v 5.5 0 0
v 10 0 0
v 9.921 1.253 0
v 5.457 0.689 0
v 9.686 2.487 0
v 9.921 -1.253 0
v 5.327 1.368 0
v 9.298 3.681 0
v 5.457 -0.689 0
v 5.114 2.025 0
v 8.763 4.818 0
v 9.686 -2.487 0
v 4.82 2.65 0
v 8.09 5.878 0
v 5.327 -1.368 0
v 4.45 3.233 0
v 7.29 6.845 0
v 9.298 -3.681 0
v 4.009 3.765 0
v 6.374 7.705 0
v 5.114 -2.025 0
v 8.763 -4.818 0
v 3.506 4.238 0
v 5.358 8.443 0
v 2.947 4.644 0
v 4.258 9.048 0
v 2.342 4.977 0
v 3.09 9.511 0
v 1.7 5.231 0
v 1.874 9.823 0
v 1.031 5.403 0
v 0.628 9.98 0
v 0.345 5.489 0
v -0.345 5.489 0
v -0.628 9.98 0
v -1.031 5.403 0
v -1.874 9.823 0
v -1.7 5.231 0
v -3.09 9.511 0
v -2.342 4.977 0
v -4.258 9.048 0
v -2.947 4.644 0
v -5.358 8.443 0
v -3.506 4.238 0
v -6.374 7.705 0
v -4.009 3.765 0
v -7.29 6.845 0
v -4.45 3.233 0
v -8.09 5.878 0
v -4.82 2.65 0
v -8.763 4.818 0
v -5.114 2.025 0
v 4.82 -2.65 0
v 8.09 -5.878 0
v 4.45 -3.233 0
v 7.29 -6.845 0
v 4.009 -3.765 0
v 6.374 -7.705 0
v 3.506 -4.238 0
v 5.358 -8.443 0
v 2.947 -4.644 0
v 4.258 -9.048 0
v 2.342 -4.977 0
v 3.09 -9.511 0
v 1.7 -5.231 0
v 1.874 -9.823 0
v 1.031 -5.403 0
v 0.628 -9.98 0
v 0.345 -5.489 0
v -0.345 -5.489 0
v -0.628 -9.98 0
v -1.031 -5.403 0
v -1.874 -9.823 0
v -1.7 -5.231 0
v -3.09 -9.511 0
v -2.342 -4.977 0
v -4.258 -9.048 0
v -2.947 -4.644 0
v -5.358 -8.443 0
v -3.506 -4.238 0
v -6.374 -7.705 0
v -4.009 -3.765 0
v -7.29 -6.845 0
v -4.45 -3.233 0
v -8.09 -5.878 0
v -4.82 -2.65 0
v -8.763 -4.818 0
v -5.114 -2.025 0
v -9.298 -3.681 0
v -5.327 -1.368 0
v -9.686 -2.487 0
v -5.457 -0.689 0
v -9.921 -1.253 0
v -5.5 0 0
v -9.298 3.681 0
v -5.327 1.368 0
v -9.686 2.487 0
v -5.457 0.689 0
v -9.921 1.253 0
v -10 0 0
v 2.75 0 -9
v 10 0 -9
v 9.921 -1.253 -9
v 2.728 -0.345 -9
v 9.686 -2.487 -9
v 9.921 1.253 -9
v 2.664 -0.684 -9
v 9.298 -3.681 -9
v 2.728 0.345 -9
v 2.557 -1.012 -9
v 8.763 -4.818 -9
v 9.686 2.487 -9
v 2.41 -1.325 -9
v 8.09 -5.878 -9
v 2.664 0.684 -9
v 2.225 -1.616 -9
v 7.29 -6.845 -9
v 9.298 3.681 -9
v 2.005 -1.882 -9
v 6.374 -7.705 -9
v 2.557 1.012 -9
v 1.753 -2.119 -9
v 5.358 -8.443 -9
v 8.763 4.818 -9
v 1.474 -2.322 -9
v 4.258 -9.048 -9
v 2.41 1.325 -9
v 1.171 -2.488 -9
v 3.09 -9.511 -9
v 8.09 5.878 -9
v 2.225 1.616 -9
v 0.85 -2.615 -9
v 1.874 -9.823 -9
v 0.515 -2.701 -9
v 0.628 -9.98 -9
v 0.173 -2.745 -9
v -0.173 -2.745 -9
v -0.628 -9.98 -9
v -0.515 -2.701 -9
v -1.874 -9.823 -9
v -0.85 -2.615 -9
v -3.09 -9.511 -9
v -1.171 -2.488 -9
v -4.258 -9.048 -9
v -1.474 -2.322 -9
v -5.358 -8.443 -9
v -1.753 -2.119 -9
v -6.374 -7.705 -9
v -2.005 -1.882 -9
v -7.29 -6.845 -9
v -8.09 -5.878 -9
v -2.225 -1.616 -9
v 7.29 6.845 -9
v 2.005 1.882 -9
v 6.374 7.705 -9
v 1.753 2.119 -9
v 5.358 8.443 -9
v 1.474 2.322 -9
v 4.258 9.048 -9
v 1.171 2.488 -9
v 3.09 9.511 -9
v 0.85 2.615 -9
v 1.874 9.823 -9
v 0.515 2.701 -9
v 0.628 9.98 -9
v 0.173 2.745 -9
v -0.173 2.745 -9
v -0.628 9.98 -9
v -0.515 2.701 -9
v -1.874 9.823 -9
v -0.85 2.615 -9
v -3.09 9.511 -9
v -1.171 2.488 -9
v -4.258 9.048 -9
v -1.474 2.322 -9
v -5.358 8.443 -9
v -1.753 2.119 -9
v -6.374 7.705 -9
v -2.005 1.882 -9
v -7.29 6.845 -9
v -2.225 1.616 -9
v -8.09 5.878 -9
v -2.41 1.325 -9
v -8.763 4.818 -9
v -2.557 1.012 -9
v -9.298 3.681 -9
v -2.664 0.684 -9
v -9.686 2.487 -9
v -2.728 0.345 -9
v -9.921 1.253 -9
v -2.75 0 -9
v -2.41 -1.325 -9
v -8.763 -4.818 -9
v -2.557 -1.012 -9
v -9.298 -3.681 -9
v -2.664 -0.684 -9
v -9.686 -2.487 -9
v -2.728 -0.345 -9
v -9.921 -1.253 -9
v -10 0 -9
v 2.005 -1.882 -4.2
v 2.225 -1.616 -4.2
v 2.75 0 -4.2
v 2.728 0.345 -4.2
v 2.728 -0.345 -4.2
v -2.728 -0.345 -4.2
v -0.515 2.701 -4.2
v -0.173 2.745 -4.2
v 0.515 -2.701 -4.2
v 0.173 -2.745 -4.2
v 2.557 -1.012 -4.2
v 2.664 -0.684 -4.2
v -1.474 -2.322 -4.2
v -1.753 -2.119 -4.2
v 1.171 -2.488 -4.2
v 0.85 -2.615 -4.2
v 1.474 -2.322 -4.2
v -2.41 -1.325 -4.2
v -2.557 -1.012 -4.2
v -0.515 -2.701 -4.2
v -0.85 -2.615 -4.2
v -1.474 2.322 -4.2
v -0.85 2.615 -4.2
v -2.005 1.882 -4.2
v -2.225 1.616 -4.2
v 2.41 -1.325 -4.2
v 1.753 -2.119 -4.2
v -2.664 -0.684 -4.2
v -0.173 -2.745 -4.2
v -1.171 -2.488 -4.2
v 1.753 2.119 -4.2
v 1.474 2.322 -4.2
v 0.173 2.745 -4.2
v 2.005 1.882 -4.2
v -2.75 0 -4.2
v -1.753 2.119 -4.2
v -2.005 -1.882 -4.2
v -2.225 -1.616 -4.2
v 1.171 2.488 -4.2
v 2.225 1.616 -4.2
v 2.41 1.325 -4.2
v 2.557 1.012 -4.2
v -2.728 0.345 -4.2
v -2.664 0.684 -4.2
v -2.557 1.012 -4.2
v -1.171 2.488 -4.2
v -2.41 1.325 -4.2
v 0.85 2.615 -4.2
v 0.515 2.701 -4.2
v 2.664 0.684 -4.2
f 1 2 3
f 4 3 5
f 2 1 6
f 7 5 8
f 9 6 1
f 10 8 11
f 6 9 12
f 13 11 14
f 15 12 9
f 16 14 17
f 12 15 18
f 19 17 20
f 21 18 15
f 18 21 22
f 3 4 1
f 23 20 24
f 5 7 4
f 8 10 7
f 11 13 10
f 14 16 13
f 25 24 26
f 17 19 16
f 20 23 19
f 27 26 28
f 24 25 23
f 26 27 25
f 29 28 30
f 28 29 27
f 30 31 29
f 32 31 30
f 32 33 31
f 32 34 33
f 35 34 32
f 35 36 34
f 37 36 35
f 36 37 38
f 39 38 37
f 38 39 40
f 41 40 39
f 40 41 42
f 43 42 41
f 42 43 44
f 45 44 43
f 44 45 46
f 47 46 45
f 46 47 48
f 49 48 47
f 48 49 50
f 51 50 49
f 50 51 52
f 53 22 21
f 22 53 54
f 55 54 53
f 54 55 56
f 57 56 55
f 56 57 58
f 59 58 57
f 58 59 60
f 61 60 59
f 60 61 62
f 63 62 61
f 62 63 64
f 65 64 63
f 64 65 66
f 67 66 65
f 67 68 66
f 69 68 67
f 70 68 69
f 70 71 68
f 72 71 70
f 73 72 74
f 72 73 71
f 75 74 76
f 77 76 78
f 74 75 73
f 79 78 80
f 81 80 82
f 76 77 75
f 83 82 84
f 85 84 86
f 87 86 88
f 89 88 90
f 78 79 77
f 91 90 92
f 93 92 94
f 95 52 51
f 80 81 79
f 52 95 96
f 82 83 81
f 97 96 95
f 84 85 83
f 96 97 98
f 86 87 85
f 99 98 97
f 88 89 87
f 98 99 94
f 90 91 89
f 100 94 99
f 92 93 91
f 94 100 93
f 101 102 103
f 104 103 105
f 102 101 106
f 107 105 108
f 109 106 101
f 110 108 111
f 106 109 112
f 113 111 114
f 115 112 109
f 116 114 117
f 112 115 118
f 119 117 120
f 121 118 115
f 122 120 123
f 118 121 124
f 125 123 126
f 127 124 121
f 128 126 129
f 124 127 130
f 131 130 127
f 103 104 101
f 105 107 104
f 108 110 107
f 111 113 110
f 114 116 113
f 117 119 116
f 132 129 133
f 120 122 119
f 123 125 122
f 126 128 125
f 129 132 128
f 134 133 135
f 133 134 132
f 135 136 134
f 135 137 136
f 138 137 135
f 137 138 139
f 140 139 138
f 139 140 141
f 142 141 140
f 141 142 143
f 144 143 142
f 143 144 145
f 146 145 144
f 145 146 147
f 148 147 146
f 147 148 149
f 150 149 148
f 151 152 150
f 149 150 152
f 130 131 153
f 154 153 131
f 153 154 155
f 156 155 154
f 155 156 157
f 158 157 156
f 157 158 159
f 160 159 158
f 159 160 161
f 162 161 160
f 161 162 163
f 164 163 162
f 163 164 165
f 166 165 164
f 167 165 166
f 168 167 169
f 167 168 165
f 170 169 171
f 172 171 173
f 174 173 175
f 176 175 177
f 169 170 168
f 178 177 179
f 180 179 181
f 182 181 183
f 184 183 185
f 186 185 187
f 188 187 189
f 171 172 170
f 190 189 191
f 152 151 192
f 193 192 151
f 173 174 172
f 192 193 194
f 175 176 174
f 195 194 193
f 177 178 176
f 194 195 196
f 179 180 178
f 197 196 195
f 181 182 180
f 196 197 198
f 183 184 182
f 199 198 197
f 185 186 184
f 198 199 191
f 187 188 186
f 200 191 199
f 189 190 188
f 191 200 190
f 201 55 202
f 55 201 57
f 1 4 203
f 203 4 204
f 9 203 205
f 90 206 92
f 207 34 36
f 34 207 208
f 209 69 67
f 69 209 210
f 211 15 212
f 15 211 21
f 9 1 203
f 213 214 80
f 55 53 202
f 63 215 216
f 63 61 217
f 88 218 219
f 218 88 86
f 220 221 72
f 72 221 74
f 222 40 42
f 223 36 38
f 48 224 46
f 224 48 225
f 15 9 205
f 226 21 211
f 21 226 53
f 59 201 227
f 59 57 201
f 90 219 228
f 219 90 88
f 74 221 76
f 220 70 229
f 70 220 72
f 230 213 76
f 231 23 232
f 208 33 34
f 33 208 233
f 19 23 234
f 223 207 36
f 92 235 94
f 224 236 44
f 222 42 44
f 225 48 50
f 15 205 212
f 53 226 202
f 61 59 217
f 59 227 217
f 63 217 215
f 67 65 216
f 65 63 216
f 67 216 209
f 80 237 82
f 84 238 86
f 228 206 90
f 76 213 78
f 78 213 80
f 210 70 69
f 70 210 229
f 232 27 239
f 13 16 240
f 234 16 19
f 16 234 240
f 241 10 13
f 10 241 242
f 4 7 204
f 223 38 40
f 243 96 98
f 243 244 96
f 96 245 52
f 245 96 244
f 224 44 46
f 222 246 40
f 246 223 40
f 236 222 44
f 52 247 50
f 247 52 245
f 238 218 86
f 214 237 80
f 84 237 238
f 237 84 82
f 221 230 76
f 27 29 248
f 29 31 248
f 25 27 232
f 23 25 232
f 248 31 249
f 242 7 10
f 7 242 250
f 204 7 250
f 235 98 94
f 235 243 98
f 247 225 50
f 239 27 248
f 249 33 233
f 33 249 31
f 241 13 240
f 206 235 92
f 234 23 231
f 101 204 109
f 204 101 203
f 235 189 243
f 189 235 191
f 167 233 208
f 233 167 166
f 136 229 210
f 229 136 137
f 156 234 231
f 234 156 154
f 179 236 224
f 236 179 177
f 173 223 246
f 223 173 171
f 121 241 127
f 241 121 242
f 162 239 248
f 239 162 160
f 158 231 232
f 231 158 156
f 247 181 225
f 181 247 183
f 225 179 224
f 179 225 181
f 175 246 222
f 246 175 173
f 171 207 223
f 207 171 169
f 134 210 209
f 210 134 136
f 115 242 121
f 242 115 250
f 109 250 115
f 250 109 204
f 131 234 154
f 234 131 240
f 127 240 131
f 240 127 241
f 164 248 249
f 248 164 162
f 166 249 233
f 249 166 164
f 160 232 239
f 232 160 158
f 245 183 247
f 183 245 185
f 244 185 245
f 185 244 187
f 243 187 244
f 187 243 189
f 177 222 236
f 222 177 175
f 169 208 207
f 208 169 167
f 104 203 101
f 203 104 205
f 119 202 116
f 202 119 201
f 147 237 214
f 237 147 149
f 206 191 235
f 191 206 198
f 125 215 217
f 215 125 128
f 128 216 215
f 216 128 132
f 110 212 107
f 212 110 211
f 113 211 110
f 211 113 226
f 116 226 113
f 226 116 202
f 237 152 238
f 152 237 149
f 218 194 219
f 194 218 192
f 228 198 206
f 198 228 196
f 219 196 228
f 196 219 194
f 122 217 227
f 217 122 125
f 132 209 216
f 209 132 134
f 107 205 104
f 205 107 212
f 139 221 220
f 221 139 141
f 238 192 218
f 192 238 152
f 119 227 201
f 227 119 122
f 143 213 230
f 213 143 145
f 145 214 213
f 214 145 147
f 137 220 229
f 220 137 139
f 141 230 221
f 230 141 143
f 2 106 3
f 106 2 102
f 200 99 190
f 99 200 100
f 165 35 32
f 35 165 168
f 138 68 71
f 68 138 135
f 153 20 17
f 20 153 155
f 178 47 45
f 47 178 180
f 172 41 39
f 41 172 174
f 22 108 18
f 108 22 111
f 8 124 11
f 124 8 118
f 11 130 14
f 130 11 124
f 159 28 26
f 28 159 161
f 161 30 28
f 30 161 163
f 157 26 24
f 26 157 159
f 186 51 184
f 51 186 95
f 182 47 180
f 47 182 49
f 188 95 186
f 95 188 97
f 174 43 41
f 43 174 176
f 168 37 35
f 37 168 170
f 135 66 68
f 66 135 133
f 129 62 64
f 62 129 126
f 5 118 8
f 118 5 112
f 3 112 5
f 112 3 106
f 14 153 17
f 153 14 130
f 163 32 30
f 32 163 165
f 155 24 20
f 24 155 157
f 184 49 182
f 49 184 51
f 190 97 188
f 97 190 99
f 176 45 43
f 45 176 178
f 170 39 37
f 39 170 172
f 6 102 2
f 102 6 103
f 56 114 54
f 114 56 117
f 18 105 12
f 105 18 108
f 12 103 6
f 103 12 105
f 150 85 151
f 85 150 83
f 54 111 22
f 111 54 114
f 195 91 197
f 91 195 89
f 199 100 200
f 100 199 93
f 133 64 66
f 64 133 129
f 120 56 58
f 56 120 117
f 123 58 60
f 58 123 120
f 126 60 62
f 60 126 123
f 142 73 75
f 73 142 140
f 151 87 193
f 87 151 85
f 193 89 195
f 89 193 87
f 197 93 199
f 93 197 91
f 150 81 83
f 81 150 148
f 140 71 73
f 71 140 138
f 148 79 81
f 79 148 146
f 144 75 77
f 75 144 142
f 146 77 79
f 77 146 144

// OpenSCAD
$fn = 50;


difference() {
	union() {
		translate(v = [0, 0, -9.0000000000]) {
			cylinder(h = 9, r = 10.0000000000);
		}
		cylinder(h = 0, r = 19.0000000000);
	}
	union() {
		translate(v = [0, 0, 0]) {
			rotate(a = [0, 0, 0]) {
				difference() {
					union() {
						#translate(v = [0, 0, -9.0000000000]) {
							cylinder(h = 9, r = 2.2500000000);
						}
						#translate(v = [0, 0, -4.2000000000]) {
							cylinder(h = 4.2000000000, r1 = 2.7500000000, r2 = 5.5000000000);
						}
						#translate(v = [0, 0, -9.0000000000]) {
							cylinder(h = 9, r = 2.7500000000);
						}
						#translate(v = [0, 0, -9.0000000000]) {
							cylinder(h = 9, r = 2.2500000000);
						}
					}
					union();
				}
			}
		}
	}
}
